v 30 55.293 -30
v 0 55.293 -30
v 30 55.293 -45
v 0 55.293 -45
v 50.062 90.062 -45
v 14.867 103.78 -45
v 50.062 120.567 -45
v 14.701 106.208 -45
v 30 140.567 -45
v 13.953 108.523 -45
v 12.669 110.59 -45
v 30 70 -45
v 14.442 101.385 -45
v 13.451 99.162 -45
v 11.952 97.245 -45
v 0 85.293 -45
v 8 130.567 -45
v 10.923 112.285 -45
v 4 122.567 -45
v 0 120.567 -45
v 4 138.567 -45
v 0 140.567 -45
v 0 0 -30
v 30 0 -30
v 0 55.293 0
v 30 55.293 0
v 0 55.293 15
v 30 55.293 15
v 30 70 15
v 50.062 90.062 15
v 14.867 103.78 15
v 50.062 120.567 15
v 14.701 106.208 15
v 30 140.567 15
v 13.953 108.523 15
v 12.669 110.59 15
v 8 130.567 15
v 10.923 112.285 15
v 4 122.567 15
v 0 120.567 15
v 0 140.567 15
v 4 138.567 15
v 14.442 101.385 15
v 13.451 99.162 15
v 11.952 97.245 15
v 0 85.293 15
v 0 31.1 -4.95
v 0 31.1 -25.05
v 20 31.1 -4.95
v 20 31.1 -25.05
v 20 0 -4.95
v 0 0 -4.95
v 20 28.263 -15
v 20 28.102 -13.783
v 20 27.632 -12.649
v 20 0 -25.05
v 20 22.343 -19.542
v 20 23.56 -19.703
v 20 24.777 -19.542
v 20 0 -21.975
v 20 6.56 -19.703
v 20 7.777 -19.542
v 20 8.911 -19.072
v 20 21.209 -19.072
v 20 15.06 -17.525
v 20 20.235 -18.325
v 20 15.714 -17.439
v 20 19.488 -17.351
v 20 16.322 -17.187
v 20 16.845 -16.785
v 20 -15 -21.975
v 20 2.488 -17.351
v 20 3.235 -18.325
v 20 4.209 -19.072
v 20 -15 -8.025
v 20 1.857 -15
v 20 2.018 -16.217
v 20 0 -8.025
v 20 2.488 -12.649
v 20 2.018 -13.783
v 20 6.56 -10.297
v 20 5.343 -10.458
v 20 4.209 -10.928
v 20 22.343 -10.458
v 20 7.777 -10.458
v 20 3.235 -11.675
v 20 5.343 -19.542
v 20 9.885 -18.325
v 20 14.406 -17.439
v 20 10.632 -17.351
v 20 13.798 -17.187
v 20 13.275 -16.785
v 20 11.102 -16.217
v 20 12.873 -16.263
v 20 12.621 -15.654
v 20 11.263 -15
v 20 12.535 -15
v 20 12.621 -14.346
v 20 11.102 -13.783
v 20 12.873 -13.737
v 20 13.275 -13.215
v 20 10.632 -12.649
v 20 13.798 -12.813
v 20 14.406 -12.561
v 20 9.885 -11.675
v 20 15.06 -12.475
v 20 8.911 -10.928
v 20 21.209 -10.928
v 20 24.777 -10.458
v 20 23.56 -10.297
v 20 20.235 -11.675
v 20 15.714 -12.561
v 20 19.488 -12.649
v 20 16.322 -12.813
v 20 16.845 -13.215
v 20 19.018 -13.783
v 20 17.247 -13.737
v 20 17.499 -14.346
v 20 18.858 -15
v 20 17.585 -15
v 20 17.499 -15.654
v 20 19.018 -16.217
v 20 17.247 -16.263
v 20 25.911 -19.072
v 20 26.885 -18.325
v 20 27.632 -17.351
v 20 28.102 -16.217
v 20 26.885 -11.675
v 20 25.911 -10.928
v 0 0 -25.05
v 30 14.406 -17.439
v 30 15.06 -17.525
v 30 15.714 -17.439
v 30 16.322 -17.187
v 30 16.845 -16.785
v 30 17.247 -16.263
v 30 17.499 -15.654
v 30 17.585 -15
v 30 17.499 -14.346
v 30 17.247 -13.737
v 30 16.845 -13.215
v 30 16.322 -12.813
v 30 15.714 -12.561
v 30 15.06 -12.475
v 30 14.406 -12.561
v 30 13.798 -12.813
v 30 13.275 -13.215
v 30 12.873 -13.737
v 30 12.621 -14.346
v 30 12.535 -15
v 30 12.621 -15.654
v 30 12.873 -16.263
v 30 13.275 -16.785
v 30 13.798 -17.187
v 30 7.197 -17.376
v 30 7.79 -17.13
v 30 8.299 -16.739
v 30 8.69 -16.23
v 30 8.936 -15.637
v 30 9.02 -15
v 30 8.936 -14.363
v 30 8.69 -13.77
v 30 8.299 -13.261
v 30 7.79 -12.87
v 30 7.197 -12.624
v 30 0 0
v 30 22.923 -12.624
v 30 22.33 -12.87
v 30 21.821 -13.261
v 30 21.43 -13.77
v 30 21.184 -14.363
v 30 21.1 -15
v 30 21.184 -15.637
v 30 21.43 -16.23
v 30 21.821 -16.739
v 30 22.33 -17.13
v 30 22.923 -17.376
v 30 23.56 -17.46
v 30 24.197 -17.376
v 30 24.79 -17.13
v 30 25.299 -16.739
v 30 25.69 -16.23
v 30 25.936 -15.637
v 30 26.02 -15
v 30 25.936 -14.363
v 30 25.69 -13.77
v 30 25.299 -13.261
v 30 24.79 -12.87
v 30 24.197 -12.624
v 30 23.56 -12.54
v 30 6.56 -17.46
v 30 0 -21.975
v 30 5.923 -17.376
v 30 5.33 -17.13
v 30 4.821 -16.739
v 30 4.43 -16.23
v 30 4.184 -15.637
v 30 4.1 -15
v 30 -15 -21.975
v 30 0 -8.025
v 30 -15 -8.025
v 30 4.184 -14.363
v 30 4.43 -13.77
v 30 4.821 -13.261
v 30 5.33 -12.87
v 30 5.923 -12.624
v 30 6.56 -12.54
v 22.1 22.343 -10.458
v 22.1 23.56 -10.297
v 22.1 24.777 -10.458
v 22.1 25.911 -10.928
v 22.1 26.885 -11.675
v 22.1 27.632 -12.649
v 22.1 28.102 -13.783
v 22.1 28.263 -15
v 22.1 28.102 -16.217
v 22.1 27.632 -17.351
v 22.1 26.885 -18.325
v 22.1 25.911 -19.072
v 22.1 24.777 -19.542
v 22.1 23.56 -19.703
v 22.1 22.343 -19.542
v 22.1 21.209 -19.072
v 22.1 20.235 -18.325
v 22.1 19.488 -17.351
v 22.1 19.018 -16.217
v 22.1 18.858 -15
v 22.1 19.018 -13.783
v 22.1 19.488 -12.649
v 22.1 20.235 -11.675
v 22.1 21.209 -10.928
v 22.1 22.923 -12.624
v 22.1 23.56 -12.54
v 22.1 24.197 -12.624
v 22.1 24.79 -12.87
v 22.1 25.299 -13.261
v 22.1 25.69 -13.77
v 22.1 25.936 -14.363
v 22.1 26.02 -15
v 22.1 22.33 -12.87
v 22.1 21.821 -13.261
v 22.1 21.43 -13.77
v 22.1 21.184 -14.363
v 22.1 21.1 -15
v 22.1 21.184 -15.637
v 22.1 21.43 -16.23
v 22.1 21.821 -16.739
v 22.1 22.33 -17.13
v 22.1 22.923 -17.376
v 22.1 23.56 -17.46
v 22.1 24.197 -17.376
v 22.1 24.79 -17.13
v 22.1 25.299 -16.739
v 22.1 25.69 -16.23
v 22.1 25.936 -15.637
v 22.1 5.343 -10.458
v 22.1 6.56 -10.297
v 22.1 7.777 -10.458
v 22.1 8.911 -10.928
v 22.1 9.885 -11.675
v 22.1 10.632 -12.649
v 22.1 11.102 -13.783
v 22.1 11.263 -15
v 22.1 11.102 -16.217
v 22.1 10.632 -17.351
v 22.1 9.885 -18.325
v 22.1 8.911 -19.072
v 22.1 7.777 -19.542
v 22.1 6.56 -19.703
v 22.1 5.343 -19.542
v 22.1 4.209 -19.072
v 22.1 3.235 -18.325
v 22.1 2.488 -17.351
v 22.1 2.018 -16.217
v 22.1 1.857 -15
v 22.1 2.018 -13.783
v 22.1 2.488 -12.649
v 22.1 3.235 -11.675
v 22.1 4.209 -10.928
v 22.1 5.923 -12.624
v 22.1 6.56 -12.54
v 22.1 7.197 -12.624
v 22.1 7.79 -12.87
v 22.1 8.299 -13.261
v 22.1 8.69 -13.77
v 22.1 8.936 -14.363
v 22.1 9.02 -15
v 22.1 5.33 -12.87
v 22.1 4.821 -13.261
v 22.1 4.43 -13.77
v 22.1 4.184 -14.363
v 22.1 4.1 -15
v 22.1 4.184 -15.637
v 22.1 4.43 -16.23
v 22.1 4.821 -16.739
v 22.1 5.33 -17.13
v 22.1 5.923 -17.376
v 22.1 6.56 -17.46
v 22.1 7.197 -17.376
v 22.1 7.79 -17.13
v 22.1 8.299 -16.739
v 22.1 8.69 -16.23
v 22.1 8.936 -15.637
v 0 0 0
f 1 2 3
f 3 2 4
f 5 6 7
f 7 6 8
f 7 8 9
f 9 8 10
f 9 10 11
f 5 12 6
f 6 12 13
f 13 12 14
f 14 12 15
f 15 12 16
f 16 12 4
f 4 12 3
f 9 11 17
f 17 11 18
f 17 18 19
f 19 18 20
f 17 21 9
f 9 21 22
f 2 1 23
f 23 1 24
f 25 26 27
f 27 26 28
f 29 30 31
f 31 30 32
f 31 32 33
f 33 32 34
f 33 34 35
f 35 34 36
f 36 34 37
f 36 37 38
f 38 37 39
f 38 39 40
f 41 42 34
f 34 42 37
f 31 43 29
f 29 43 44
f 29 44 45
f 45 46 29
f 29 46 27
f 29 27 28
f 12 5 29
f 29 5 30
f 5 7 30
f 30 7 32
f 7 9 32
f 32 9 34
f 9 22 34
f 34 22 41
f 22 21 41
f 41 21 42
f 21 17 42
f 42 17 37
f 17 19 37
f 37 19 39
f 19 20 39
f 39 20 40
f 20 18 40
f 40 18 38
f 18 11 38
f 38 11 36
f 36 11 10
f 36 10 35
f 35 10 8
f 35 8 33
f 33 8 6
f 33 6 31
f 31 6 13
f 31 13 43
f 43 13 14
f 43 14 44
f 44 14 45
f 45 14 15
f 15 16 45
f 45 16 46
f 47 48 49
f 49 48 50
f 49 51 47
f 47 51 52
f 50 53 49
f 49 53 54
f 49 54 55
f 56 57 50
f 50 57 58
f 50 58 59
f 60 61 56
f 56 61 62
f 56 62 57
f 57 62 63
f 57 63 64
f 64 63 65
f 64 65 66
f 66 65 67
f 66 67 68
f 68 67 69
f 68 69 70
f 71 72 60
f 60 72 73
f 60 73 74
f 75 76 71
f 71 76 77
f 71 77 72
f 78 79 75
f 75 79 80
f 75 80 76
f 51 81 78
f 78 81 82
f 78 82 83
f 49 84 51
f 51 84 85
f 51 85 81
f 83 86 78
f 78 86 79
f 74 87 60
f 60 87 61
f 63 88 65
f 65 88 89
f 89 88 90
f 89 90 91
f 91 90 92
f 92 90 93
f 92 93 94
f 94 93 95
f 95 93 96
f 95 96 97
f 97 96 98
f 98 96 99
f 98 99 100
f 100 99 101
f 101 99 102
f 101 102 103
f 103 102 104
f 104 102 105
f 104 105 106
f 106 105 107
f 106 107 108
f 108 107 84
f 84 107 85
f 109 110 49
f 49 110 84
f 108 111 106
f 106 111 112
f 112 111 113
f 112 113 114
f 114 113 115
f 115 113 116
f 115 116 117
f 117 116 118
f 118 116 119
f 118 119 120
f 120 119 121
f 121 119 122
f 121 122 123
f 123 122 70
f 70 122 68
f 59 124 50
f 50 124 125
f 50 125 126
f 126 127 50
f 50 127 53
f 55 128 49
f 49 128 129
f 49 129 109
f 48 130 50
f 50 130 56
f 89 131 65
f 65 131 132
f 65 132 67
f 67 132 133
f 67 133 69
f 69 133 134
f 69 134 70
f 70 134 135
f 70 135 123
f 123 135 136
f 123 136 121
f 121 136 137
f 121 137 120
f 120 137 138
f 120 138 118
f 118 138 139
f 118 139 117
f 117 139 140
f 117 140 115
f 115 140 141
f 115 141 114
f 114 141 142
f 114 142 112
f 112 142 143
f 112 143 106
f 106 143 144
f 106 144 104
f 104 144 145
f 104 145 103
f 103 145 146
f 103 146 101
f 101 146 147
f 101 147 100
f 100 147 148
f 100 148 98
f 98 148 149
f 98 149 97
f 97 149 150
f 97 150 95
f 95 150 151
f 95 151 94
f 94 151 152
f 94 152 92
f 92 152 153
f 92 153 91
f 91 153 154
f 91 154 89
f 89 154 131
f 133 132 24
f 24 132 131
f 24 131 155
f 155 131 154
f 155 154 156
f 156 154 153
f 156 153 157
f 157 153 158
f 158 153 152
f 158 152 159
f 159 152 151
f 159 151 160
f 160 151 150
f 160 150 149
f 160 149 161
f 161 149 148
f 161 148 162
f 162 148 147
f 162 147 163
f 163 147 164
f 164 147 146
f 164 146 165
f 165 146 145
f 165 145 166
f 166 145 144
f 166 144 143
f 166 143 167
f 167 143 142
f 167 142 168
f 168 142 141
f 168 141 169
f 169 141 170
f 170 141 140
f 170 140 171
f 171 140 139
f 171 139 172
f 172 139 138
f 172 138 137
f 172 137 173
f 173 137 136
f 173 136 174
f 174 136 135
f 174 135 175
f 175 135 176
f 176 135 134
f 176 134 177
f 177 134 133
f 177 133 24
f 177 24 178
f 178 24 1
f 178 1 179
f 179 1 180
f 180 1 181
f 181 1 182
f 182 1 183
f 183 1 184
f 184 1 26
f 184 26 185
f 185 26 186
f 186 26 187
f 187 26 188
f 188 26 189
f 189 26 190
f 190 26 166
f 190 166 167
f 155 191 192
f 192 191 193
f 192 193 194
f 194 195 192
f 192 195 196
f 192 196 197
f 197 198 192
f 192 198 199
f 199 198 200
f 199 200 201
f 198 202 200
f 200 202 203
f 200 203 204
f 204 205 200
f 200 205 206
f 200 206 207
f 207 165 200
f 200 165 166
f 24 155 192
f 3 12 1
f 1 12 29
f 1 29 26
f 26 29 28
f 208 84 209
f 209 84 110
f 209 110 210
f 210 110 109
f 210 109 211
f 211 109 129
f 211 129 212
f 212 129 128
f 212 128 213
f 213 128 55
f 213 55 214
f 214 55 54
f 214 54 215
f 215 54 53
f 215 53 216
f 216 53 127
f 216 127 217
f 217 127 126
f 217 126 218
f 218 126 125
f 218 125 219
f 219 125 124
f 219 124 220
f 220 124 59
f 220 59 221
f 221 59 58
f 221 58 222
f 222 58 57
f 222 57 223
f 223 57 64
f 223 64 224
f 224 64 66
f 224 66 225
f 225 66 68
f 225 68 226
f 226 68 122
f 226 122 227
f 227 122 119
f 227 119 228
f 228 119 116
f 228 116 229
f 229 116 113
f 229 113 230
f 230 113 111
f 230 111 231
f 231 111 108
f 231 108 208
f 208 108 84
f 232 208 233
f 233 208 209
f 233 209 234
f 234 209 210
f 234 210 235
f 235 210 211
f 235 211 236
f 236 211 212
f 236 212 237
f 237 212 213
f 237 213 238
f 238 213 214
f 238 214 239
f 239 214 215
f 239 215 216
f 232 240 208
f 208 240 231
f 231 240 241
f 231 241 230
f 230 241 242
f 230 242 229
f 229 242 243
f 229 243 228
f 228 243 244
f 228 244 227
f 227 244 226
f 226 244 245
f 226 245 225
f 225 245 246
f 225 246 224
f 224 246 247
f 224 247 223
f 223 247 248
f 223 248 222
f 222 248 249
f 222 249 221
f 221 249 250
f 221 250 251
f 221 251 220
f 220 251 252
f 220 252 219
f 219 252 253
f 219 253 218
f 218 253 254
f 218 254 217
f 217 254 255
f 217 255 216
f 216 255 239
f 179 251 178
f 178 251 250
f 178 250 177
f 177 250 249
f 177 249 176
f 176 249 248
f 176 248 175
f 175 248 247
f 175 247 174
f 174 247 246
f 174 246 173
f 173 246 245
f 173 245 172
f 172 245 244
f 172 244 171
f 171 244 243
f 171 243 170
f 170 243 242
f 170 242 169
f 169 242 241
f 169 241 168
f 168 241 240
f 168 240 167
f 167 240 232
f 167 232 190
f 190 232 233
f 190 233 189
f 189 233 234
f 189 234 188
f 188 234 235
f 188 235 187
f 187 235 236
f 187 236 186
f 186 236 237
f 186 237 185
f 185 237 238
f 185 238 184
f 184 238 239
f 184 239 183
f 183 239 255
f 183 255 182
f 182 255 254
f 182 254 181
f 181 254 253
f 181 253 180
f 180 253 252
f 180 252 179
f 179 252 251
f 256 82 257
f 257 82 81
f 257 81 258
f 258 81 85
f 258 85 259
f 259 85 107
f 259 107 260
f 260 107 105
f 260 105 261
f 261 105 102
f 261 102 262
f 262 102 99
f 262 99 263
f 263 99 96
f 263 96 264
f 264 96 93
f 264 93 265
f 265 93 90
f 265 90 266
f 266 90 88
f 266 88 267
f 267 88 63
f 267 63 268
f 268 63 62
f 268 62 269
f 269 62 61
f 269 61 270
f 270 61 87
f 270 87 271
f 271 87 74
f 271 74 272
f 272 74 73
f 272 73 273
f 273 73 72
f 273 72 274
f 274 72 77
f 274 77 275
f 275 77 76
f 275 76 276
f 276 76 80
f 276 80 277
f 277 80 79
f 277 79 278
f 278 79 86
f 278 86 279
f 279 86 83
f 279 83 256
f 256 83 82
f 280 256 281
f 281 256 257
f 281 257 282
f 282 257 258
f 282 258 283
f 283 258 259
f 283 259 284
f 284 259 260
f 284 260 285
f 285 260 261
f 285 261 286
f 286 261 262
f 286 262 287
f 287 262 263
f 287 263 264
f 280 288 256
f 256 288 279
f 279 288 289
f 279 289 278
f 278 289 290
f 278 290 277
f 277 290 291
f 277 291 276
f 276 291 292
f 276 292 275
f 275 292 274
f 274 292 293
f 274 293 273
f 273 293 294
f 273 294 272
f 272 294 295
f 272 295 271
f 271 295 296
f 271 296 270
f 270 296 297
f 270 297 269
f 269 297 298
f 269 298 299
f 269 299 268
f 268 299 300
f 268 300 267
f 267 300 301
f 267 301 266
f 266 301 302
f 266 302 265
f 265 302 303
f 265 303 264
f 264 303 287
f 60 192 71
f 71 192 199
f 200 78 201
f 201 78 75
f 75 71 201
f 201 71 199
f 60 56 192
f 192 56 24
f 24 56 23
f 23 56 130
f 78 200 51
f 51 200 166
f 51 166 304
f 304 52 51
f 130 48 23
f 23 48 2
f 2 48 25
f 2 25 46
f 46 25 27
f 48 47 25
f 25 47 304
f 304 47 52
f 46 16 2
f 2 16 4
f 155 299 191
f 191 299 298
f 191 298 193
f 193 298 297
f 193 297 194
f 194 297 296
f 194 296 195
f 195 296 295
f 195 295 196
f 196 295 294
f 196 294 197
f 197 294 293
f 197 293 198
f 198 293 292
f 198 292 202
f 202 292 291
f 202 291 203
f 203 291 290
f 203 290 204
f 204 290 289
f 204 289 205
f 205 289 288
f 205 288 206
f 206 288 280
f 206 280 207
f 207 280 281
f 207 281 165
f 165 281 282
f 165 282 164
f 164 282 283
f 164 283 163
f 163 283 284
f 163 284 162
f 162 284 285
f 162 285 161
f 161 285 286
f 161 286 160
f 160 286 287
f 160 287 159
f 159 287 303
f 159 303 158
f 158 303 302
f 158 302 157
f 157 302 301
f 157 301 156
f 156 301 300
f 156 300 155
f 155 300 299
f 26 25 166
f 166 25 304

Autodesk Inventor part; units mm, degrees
ref_plane "YZ Plane" through (0, 0, 0) normal (1, 0, 0) x (0, 1, 0)
ref_plane "XZ Plane" through (0, 0, 0) normal (0, 1, 0) x (-1, 0, 0)
sketch "Sketch1" plane through (0, 0, 0) normal (0, 0, 1) x (1, 0, 0)
  line L0 (0, 0) -> (25, 0)
  line L1 (25, 0) -> (25, 40)
  line L2 (25, 40) -> (0, 40)
  line L3 (0, 40) -> (0, 0)
  dimension "d1" = 25
  dimension "d2" = 40
  dimension "d3" = 25
extrude "Extrusion1" add sketch "Sketch1" against normal blind 30
sketch "Sketch2" plane through (25, 0, 0) normal (1, 0, 0) x (0, 0, -1)
  line L0 (0, 0) -> (30, 0) projected
  circle A0 centre (15, 6.56) radius 2.46
extrude "Extrusion2" cut sketch "Sketch2" against normal blind 30
sketch "Sketch3" plane through (0, 0, 0) normal (-1, 0, 0) x (0, 0, 1)
  line L0 (0, 0) -> (-30, 0) projected
  line L1 (-25.05, 0) -> (-4.95, 0)
  line L2 (-4.95, 0) -> (-4.95, 33.12)
  line L3 (-4.95, 33.12) -> (-25.05, 33.12)
  line L4 (-25.05, 33.12) -> (-25.05, 0)
  dimension "d11" = 20.1
extrude "Extrusion3" cut sketch "Sketch3" against normal blind 20
sketch "Sketch4" plane through (0, 0, 0) normal (0, -1, 0) x (1, 0, 0)
  line L0 (20, -4.95) -> (20, -25.05) projected
  line L1 (20, -15) -> (25, -15)
  line L2 (25, 0) -> (25, -30) projected
  line L3 (20, -8.025) -> (25, -8.025)
  line L4 (25, -8.025) -> (25, -21.975)
  line L5 (25, -21.975) -> (20, -21.975)
  line L6 (20, -21.975) -> (20, -8.025)
  line L7 (20, -8.025) -> (25, -21.975) construction
  line L8 (25, -8.025) -> (20, -21.975) construction
  line L9 (25, -12.54) -> (25, -17.46) projected
  point P0 (0, 0)
  point P1 (22.5, -15)
  dimension "d14" = 13.95
extrude "Extrusion4" add sketch "Sketch4" along normal blind 15
sketch "Sketch5" plane through (20, 0, 0) normal (-1, 0, 0) x (0, 0, 1)
  circle A0 centre (-15, 6.56) radius 2.46 projected
  circle A1 centre (-15, 6.56) radius 4.7025
  circle A2 centre (-15, 6.56) radius 2.46 projected
  circle A3 centre (-15, 6.56) radius 2.46
  point P0 (0, 0)
  dimension "d17" = 9.405
extrude "Extrusion5" cut sketch "Sketch5" against normal blind 2.1
sketch "Sketch6" plane through (25, 0, 0) normal (1, 0, 0) x (0, 0, -1)
  circle A0 centre (15, 6.56) radius 4.7025 projected
  line L0 (15, 6.56) -> (15, 23.56)
  circle A1 centre (15, 23.56) radius 2.46
  point P0 (0, 0)
  dimension "d20" = 17
  dimension "d21" = 4.92
extrude "Extrusion6" cut sketch "Sketch6" against normal blind 10 contours A1
sketch "Sketch7" plane through (20, 0, 0) normal (-1, 0, 0) x (0, 0, 1)
  circle A0 centre (-15, 23.56) radius 2.46 projected
  circle A1 centre (-15, 23.56) radius 4.7025
  point P0 (0, 0)
  dimension "d24" = 9.405
extrude "Extrusion7" cut sketch "Sketch7" against normal blind 2.1
sketch "Sketch9" plane through (25, 0, 0) normal (1, 0, 0) x (0, 0, -1)
  circle A0 centre (15, 6.56) radius 2.46 projected
  circle A1 centre (15, 6.56) radius 2.46
  circle A2 centre (15, 23.56) radius 2.46 projected
  circle A3 centre (15, 23.56) radius 2.46
  line L0 (30, 40) -> (30, 0) projected
  line L1 (30, 0) -> (30, 40)
  line L2 (30, 40) -> (0, 40)
  line L3 (0, 40) -> (0, 0)
  line L4 (0, 0) -> (8.025, 0) projected
  line L5 (21.975, 0) -> (21.975, -15)
  line L6 (21.975, -15) -> (8.025, -15)
  line L7 (8.025, -15) -> (8.025, 0)
  line L8 (0, 0) -> (8.025, 0)
  line L9 (21.975, 0) -> (30, 0)
extrude "Extrusion8" add sketch "Sketch9" along normal blind 5
sketch "Sketch10" plane through (0, 40, 0) normal (0, 1, 0) x (1, 0, 0)
  line L0 (0, 30) -> (30, 30) projected
  line L1 (30, 0) -> (0, 0) projected
  line L2 (0, 30) -> (30, 30)
  line L3 (30, 30) -> (30, 0)
  line L4 (30, 0) -> (0, 0)
  line L5 (0, 0) -> (0, 30)
extrude "Extrusion9" add sketch "Sketch10" along normal blind 30
sketch "Sketch12" plane through (30, 0, 0) normal (1, 0, 0) x (0, 0, -1)
  circle A0 centre (15, 6.56) radius 2.46 projected
  line L0 (15, 6.56) -> (15, 15.06)
  circle A1 centre (15, 15.06) radius 2.525
  point P0 (0, 0)
  dimension "d31" = 8.5
  dimension "d33" = 5.05
extrude "Extrusion10" cut sketch "Sketch12" against normal blind 30 contours A1
sketch "Sketch15" plane through (0, 0, -25.05) normal (-1, 0, 0) x (0, 0, 1)
  line L0 (0, 33.12) -> (20.1, 33.12) projected
  line L1 (20.1, 33.12) -> (20.1, 0) projected
  line L2 (0, 33.12) -> (20.1, 33.12)
  line L3 (20.1, 33.12) -> (20.1, 31.1)
  line L4 (20.1, 31.1) -> (0, 31.1)
  line L5 (0, 31.1) -> (0, 33.12)
  point P0 (25.05, 0)
  dimension "d57" = 2.02
extrude "Extrusion13" add sketch "Sketch15" against normal blind 20
sketch "Sketch17" plane through (0, 0, 0) normal (0, 0, 1) x (1, 0, 0)
  line L0 (0, 70) -> (30, 70) projected
  line L1 (30, 70) -> (50.0622, 90.0622)
  line L2 (30, 70) -> (80, 70) construction
  line L3 (11.9522, 97.2454) -> (0, 85.2932)
  line L4 (0, 70) -> (0, 85.2932)
  line L5 (0, 70) -> (0, 0) projected
  line L6 (0, 70) -> (30, 70)
  line L7 (10.923, 112.2849) -> (0, 120.567)
  line L8 (50.0622, 105.3553) -> (50.0622, 120.567)
  line L9 (50.0622, 105.3553) -> (50.0622, 90.0622)
  arc A0 (11.9522, 97.2454) -> (10.923, 112.2849) centre (4.8811, 104.3165) ccw
  line L10 (4, 138.567) -> (0, 140.567)
  line L11 (4, 122.567) -> (0, 120.567)
  line L12 (4, 122.567) -> (8, 130.567)
  line L13 (4, 138.567) -> (8, 130.567)
  line L14 (0, 140.567) -> (30, 140.567)
  line L15 (30, 140.567) -> (50.0622, 120.567)
  dimension "d61" = 45
  dimension "d62" = 32.0271
  dimension "d72" = 10
extrude "Extrusion14" add sketch "Sketch17" against normal blind 30
sketch "Sketch21" plane through (0, 0, 0) normal (0, 0, 1) x (1, 0, 0)
  line L0 (50.0622, 90.0622) -> (30, 70) projected
  line L1 (30, 70) -> (50.0622, 90.0622)
  line L2 (50.0622, 90.0622) -> (50.0622, 120.567) projected
  line L3 (50.0622, 90.0622) -> (50.0622, 120.567)
  line L4 (0, 140.567) -> (30, 140.567) projected
  line L5 (50.0622, 120.567) -> (30, 140.567)
  line L6 (30, 140.567) -> (0, 140.567)
  line L7 (4, 138.567) -> (0, 140.567) projected
  line L8 (0, 140.567) -> (4, 138.567)
  line L9 (8, 130.567) -> (4, 138.567) projected
  line L10 (4, 138.567) -> (8, 130.567)
  line L11 (4, 122.567) -> (8, 130.567) projected
  line L12 (8, 130.567) -> (4, 122.567)
  line L13 (0, 120.567) -> (4, 122.567) projected
  line L14 (4, 122.567) -> (0, 120.567)
  line L15 (10.923, 112.2849) -> (0, 120.567) projected
  line L16 (0, 120.567) -> (10.923, 112.2849)
  line L17 (0, 85.2932) -> (11.9522, 97.2454) projected
  line L18 (11.9522, 97.2454) -> (0, 85.2932)
  line L19 (0, 85.2932) -> (0, 55.2932)
  line L20 (0, 55.2932) -> (30, 55.2932)
  line L21 (30, 55.2932) -> (30, 70)
  arc A0 (11.9522, 97.2454) -> (10.923, 112.2849) centre (4.8811, 104.3165) ccw
  dimension "d79" = 30
  dimension "d81" = 30
extrude "Extrusion15" add sketch "Sketch21" along normal blind 15
ref_plane "Work Plane1" through (0, 0, -15) normal (0, 0, 1) x (1, 0, 0)
mirror "Mirror1" about plane through (0, 0, -15) normal (0, 0, 1) of "Extrusion15"
properties part number "rec_c_16mm_x_60mm"
